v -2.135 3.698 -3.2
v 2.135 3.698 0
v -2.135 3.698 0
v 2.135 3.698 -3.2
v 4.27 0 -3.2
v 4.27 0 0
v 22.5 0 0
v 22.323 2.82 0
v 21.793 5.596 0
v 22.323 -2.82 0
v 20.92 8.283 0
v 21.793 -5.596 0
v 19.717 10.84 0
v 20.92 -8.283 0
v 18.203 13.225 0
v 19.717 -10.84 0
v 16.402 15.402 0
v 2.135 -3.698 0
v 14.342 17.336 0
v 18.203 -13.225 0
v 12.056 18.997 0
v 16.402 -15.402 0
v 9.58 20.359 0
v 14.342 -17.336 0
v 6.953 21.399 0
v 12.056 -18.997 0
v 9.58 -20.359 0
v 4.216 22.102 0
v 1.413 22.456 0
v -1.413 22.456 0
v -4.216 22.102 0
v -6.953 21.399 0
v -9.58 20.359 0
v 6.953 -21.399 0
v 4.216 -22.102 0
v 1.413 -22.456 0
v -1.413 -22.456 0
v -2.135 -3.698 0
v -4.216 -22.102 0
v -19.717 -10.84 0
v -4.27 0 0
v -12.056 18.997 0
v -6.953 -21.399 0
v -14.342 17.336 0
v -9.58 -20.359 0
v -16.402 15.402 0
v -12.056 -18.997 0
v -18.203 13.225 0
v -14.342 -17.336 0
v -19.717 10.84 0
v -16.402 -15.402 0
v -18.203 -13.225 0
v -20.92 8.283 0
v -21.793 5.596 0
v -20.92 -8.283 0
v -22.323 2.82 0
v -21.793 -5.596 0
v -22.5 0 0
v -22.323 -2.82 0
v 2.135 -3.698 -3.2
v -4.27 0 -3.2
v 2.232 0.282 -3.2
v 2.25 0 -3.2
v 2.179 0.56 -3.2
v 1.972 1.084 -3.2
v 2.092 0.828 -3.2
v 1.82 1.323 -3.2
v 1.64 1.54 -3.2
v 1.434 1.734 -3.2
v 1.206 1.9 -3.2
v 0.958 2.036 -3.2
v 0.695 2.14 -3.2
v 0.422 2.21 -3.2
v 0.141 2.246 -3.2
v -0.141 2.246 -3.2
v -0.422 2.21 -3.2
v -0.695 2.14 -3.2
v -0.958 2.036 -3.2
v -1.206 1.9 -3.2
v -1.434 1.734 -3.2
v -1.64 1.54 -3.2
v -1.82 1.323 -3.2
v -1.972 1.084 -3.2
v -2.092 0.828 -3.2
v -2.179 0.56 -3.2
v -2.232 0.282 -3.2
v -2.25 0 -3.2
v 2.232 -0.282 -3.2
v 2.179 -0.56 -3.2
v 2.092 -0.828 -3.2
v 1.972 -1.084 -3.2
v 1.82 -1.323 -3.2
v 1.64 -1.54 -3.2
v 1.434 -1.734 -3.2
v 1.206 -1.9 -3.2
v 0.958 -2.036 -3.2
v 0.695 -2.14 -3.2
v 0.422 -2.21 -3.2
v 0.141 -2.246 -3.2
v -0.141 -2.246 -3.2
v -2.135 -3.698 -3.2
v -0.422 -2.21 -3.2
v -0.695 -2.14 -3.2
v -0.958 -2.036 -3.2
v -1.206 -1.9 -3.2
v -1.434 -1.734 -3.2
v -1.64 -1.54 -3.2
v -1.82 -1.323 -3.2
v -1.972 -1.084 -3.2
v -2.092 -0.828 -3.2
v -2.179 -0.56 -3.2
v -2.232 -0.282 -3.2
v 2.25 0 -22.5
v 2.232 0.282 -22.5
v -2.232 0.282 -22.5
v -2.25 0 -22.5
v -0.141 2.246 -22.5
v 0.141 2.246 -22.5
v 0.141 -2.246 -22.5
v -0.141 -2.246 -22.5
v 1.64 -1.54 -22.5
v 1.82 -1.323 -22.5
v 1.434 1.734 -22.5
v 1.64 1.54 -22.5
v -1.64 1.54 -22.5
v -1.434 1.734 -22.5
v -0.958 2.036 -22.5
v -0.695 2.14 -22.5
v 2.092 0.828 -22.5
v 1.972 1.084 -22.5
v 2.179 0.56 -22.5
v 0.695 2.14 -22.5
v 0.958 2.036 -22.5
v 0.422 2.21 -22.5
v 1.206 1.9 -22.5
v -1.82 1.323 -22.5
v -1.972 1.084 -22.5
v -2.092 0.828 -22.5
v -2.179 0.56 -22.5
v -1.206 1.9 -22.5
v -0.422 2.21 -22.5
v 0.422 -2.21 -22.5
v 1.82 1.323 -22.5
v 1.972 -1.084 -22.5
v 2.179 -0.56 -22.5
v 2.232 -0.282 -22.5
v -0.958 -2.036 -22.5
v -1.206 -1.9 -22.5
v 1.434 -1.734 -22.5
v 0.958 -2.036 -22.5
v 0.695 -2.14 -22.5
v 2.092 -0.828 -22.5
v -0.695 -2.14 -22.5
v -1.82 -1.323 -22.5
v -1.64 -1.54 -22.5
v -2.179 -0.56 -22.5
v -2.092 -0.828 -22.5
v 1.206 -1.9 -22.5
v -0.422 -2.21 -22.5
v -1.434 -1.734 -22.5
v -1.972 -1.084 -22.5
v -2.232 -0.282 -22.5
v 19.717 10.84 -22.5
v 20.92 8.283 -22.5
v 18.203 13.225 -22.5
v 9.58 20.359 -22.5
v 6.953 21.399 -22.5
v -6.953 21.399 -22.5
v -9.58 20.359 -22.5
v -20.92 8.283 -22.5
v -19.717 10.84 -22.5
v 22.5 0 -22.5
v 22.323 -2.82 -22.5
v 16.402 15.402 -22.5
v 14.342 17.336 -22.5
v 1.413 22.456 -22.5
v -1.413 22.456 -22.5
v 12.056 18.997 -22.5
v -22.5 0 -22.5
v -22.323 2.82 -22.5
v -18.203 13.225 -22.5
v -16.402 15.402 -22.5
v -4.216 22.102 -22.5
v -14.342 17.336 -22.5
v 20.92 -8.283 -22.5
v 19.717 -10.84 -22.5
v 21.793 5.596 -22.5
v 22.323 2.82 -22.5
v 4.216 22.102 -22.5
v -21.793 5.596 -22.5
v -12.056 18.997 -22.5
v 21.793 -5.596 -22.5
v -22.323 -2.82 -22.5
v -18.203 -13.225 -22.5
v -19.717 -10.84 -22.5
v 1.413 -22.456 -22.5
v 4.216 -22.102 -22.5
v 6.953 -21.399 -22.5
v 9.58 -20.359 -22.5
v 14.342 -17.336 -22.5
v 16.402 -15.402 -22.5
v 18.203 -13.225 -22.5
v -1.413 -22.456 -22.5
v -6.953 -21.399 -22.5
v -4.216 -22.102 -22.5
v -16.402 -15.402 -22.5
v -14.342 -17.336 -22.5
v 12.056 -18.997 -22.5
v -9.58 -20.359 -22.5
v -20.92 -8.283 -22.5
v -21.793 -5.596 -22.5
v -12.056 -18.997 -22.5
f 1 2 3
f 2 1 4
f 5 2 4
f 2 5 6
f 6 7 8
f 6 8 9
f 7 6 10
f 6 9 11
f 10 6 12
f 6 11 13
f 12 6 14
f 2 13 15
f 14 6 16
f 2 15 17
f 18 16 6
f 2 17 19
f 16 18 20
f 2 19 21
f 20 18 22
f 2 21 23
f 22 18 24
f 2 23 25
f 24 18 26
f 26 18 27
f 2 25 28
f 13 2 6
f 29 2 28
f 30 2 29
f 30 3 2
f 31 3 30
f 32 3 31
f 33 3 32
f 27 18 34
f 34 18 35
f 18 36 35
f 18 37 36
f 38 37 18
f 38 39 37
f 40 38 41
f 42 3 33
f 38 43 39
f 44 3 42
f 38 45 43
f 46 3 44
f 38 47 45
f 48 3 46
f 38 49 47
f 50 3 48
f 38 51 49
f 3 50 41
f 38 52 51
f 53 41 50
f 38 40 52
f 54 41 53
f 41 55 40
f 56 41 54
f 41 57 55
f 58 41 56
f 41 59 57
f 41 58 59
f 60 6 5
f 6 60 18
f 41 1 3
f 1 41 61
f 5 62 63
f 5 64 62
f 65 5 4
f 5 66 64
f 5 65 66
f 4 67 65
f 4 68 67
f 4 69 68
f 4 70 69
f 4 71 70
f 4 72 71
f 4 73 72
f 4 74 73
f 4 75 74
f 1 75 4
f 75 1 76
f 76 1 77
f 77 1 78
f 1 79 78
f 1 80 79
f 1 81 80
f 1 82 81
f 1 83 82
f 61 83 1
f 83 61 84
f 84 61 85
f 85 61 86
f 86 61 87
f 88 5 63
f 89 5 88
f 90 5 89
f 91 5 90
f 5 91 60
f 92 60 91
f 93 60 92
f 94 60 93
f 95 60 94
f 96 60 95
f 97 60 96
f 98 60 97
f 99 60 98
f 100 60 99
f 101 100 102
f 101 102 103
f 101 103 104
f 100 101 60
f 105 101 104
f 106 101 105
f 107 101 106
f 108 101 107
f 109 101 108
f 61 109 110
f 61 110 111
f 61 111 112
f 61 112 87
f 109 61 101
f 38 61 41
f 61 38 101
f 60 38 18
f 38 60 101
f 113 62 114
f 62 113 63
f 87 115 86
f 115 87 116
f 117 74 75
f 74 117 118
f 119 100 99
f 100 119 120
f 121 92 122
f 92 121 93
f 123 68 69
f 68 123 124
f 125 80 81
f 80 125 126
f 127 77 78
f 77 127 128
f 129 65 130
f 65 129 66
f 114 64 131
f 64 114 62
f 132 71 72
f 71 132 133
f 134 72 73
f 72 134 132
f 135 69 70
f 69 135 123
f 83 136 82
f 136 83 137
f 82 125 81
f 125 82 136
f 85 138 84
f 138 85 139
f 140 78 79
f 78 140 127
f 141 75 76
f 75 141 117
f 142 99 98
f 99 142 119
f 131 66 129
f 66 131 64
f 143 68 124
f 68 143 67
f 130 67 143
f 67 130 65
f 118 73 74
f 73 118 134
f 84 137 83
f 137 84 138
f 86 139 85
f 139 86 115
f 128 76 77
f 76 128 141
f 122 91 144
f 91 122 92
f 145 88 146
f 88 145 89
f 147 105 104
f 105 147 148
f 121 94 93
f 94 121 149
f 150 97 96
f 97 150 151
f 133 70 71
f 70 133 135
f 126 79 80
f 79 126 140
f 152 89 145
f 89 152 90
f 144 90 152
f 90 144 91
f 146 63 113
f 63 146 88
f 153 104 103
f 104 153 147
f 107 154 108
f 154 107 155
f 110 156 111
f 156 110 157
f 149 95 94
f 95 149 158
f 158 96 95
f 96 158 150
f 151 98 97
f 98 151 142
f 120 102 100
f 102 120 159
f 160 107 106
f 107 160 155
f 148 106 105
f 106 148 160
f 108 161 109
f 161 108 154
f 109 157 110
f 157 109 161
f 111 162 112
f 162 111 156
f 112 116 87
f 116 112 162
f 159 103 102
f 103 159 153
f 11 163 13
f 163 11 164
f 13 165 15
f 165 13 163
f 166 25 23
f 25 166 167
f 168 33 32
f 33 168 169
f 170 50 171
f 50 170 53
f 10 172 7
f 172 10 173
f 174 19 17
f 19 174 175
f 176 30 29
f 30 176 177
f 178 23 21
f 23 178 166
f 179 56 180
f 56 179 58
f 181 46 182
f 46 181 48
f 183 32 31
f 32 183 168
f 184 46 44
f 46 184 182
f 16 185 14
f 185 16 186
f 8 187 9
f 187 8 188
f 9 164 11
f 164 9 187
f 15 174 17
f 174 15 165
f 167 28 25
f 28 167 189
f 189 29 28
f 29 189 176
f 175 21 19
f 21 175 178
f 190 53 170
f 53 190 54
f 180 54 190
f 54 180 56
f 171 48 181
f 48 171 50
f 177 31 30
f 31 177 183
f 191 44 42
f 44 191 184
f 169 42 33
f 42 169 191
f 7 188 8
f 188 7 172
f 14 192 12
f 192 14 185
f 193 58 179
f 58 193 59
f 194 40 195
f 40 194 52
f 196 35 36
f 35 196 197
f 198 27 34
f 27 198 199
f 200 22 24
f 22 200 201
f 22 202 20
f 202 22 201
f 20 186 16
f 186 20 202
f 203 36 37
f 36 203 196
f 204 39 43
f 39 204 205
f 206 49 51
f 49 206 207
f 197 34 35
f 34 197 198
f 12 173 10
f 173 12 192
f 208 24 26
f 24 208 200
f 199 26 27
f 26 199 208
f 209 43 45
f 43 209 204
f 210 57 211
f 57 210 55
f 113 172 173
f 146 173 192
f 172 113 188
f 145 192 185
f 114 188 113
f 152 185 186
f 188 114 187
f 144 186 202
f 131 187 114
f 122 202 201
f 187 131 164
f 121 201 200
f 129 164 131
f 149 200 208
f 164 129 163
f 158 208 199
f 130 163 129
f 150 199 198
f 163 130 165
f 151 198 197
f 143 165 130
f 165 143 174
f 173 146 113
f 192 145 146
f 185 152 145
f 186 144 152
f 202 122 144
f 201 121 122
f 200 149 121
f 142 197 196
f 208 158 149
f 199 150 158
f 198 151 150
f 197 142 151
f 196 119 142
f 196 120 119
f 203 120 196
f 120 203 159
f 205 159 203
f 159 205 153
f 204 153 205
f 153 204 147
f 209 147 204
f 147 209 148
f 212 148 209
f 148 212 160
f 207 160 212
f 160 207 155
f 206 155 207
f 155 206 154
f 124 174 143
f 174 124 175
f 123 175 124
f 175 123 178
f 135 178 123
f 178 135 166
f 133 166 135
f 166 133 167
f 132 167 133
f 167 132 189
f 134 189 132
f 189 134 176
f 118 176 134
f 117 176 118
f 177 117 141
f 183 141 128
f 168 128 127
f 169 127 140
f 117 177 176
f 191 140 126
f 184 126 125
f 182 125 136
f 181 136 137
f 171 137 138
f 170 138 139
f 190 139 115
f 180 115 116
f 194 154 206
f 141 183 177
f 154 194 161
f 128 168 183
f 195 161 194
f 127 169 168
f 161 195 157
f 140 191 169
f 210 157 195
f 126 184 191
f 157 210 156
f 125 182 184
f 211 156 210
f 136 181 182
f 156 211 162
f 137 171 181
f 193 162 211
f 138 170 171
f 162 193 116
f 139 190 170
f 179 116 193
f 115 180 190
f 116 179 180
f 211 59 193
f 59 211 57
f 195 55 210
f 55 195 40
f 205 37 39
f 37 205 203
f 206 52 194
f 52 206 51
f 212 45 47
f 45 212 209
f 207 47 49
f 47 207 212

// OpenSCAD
$fn = 50;

difference() {
	union() {
		translate(v = [0, 0, -22.5]) {
			cylinder(h = 22.5, r = 22.5);
		}
	}
	union() {
		translate(v = [0, 0, 0]) {
			rotate(a = [0, 0, 0]) {
				difference() {
					union() {
						translate(v = [0, 0, -3.2]) {
							linear_extrude(height = 3.2) {
								polygon(points = [[4.2698, 0.0], [2.1349000000000005, 3.697755269078796], [-2.134899999999999, 3.6977552690787965], [-4.2698, 5.228996902999369e-16], [-2.134900000000002, -3.6977552690787956], [2.1348999999999974, -3.697755269078798]]);
							}
						}
					}
					union();
				}
			}
		}
		#translate(v = [0, 0, -100.0]) {
			cylinder(h = 200, r = 2.25);
		}
	}
}
